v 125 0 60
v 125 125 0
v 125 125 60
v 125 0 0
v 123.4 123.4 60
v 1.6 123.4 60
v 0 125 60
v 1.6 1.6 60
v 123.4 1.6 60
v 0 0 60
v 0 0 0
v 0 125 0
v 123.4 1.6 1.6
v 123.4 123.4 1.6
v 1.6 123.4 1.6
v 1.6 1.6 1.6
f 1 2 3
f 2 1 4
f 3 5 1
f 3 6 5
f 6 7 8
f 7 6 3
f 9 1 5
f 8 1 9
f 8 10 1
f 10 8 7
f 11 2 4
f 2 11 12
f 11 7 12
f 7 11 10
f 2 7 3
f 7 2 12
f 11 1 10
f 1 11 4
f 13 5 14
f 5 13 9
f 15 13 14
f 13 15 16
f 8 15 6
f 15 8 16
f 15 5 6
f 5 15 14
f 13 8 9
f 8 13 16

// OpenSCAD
include <boardgame_insert_toolkit_lib.2.scad>;

// determines whether lids are output.
g_b_print_lid = true;

// determines whether boxes are output.
g_b_print_box = true;

// Focus on one box
g_isolated_print_box = "";

// Used to visualize how all of the boxes fit together.
g_b_visualization = false;

// this is the outer wall thickness.
// Default = 1.5mm
g_wall_thickness = 1.6;

// The tolerance value is extra space put between planes of the lid and box
// that fit together. Increase the tolerance to loosen the fit and decrease it
// to tighten it.
//
// Note that the tolerance is applied exclusively to the lid.
// So if the lid is too tight or too loose, change this value ( up for looser
// fit, down for tighter fit ) and you only need to reprint the lid.
//
// The exception is the stackable box, where the bottom of the box is the lid
// of the box below, in which case the tolerance also affects that box bottom.
//
g_tolerance = 0.15;

// This adjusts the position of the lid detents downward.
// The larger the value, the bigger the gap between the lid and the box.
g_tolerance_detents_pos = 0.1;

data = [
  [
    "simple box",
    [
      [BOX_SIZE_XYZ, [125, 125, 60]],
      [BOX_NO_LID_B, t],
      [
        BOX_COMPONENT,
        [
          [
            CMP_COMPARTMENT_SIZE_XYZ,
            [121.8, 121.8, 58.4]
          ]
        ]
      ]
    ]
  ]
];

MakeAll();
